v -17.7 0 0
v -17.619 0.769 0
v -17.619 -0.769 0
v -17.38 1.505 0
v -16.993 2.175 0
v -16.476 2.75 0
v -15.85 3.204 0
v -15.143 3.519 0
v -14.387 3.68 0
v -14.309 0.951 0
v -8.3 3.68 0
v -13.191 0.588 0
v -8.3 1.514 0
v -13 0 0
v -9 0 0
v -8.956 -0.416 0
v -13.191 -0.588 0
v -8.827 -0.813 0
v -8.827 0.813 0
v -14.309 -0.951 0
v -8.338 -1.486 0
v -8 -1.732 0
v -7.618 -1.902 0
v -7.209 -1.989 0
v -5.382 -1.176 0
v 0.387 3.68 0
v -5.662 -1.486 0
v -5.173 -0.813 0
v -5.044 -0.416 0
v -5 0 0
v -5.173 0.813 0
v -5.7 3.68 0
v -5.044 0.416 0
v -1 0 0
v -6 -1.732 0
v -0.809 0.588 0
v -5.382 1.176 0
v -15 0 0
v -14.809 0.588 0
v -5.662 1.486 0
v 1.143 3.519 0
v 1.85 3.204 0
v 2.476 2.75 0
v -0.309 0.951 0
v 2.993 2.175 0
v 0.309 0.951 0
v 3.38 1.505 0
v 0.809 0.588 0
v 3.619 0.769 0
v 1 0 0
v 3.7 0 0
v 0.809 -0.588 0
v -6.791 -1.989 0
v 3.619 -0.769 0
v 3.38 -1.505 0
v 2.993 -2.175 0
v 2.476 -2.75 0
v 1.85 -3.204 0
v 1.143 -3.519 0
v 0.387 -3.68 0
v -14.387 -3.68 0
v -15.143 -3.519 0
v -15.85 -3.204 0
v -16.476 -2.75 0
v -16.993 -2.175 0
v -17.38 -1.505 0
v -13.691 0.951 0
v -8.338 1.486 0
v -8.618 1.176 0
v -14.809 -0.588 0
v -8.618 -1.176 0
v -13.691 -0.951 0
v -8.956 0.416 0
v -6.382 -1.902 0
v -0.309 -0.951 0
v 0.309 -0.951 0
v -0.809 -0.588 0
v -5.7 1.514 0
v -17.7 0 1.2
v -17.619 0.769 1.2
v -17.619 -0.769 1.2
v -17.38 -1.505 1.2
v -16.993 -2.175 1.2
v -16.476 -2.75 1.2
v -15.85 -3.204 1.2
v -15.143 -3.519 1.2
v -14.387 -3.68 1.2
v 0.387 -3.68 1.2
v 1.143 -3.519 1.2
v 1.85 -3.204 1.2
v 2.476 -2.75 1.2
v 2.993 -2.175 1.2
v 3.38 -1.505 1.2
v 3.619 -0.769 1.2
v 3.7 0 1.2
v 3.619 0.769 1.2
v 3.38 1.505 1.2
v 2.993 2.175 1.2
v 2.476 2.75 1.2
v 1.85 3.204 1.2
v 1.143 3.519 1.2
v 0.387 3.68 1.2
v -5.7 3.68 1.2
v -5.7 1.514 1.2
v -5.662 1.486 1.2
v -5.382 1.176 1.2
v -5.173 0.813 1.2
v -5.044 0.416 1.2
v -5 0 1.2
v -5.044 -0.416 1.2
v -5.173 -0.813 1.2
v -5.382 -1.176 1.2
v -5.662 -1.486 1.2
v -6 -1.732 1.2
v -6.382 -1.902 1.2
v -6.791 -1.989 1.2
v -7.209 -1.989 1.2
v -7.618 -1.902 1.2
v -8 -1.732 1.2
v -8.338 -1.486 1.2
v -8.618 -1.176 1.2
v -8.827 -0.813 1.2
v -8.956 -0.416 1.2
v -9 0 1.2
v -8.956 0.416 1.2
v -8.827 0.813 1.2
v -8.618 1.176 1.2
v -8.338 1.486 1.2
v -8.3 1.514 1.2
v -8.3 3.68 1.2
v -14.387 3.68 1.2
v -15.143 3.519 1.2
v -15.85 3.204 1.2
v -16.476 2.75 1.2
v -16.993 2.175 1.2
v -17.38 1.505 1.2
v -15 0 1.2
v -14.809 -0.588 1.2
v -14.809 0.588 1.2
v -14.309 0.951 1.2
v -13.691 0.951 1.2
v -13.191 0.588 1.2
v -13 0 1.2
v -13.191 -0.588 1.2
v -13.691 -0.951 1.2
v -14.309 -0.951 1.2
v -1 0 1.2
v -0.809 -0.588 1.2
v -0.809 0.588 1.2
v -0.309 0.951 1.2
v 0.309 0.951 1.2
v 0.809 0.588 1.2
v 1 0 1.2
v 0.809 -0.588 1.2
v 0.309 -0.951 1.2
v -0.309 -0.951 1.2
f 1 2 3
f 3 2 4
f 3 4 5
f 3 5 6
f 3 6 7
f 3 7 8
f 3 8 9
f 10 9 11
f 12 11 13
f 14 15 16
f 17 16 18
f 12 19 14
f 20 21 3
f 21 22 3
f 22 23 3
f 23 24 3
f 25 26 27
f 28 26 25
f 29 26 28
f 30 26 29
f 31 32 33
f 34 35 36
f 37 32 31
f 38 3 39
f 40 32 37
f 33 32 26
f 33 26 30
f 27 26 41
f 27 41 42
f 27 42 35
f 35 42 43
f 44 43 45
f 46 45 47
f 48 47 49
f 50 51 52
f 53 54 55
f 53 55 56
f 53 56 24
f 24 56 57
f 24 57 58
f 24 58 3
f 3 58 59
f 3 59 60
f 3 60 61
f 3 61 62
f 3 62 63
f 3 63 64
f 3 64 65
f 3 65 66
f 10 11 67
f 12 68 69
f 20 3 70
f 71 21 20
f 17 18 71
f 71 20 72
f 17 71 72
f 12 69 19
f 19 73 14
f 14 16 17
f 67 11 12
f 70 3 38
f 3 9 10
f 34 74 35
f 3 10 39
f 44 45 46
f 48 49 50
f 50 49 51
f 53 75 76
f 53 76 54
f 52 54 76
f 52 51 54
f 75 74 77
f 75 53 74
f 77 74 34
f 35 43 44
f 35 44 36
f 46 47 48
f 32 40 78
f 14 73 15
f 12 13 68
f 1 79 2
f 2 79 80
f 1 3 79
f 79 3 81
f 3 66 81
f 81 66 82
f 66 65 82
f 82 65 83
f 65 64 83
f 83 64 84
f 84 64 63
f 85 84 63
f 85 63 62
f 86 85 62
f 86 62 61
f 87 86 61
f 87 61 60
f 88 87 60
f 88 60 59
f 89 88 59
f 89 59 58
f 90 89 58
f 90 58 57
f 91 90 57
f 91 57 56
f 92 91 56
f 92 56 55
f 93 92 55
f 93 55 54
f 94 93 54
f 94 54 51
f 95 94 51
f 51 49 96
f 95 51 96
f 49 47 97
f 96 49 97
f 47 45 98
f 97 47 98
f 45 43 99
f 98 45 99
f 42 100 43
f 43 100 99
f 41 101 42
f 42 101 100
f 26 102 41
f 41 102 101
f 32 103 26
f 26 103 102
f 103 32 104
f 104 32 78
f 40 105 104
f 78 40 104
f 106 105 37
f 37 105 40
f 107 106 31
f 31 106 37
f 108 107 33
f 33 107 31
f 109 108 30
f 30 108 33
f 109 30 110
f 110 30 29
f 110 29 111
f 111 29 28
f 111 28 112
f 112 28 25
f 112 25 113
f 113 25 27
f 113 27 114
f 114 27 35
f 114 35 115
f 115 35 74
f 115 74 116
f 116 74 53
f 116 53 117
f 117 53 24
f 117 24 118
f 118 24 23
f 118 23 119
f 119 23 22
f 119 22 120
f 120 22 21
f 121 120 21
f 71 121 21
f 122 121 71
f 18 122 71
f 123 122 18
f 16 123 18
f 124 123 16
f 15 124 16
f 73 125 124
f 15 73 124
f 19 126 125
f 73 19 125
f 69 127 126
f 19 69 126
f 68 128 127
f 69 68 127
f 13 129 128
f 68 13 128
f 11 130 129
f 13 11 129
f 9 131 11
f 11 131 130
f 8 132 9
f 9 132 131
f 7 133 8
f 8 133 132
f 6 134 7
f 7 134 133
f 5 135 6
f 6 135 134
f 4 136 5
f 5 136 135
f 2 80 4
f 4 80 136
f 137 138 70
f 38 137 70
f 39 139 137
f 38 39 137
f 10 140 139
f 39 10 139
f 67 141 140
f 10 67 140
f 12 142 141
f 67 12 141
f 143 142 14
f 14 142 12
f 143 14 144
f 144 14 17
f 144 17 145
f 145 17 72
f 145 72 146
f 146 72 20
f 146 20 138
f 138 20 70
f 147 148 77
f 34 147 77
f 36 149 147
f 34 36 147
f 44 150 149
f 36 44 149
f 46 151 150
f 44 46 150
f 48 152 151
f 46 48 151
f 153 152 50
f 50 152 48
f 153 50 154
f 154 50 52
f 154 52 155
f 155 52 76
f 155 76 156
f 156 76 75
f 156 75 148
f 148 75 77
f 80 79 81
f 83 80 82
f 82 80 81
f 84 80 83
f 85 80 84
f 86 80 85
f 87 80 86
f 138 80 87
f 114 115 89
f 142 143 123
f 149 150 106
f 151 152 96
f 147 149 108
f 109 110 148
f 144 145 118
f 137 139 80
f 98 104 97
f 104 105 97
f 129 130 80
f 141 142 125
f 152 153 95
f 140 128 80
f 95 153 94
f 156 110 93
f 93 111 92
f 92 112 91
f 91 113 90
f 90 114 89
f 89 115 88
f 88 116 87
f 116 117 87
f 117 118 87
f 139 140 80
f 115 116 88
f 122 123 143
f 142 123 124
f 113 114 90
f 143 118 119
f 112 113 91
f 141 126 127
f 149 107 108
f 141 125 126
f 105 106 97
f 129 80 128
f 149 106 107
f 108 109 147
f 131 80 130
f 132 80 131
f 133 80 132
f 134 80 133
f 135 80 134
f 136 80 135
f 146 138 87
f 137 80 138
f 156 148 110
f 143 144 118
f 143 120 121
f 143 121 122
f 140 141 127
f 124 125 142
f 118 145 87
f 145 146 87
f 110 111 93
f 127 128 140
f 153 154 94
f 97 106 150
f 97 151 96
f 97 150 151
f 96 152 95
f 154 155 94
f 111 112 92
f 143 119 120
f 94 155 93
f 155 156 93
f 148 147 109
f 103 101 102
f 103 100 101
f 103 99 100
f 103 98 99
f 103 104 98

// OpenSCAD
difference(){
hull(){
	translate([-14,0])cylinder(r=3.7,h=1.2,$fn=30);
	translate([0,0,0])cylinder(r=3.7,h=1.2,$fn=30);
}
translate([-14,0,-1])cylinder(r=1,h=4,$fn=10);
translate([0,0,-1])cylinder(r=1,h=4,$fn=10);
translate([-7,0,-1])cylinder(r=2,h=4,$fn=30);
translate([-7-1.3,0,-0.5])cube([2.6,4,3]);
}
